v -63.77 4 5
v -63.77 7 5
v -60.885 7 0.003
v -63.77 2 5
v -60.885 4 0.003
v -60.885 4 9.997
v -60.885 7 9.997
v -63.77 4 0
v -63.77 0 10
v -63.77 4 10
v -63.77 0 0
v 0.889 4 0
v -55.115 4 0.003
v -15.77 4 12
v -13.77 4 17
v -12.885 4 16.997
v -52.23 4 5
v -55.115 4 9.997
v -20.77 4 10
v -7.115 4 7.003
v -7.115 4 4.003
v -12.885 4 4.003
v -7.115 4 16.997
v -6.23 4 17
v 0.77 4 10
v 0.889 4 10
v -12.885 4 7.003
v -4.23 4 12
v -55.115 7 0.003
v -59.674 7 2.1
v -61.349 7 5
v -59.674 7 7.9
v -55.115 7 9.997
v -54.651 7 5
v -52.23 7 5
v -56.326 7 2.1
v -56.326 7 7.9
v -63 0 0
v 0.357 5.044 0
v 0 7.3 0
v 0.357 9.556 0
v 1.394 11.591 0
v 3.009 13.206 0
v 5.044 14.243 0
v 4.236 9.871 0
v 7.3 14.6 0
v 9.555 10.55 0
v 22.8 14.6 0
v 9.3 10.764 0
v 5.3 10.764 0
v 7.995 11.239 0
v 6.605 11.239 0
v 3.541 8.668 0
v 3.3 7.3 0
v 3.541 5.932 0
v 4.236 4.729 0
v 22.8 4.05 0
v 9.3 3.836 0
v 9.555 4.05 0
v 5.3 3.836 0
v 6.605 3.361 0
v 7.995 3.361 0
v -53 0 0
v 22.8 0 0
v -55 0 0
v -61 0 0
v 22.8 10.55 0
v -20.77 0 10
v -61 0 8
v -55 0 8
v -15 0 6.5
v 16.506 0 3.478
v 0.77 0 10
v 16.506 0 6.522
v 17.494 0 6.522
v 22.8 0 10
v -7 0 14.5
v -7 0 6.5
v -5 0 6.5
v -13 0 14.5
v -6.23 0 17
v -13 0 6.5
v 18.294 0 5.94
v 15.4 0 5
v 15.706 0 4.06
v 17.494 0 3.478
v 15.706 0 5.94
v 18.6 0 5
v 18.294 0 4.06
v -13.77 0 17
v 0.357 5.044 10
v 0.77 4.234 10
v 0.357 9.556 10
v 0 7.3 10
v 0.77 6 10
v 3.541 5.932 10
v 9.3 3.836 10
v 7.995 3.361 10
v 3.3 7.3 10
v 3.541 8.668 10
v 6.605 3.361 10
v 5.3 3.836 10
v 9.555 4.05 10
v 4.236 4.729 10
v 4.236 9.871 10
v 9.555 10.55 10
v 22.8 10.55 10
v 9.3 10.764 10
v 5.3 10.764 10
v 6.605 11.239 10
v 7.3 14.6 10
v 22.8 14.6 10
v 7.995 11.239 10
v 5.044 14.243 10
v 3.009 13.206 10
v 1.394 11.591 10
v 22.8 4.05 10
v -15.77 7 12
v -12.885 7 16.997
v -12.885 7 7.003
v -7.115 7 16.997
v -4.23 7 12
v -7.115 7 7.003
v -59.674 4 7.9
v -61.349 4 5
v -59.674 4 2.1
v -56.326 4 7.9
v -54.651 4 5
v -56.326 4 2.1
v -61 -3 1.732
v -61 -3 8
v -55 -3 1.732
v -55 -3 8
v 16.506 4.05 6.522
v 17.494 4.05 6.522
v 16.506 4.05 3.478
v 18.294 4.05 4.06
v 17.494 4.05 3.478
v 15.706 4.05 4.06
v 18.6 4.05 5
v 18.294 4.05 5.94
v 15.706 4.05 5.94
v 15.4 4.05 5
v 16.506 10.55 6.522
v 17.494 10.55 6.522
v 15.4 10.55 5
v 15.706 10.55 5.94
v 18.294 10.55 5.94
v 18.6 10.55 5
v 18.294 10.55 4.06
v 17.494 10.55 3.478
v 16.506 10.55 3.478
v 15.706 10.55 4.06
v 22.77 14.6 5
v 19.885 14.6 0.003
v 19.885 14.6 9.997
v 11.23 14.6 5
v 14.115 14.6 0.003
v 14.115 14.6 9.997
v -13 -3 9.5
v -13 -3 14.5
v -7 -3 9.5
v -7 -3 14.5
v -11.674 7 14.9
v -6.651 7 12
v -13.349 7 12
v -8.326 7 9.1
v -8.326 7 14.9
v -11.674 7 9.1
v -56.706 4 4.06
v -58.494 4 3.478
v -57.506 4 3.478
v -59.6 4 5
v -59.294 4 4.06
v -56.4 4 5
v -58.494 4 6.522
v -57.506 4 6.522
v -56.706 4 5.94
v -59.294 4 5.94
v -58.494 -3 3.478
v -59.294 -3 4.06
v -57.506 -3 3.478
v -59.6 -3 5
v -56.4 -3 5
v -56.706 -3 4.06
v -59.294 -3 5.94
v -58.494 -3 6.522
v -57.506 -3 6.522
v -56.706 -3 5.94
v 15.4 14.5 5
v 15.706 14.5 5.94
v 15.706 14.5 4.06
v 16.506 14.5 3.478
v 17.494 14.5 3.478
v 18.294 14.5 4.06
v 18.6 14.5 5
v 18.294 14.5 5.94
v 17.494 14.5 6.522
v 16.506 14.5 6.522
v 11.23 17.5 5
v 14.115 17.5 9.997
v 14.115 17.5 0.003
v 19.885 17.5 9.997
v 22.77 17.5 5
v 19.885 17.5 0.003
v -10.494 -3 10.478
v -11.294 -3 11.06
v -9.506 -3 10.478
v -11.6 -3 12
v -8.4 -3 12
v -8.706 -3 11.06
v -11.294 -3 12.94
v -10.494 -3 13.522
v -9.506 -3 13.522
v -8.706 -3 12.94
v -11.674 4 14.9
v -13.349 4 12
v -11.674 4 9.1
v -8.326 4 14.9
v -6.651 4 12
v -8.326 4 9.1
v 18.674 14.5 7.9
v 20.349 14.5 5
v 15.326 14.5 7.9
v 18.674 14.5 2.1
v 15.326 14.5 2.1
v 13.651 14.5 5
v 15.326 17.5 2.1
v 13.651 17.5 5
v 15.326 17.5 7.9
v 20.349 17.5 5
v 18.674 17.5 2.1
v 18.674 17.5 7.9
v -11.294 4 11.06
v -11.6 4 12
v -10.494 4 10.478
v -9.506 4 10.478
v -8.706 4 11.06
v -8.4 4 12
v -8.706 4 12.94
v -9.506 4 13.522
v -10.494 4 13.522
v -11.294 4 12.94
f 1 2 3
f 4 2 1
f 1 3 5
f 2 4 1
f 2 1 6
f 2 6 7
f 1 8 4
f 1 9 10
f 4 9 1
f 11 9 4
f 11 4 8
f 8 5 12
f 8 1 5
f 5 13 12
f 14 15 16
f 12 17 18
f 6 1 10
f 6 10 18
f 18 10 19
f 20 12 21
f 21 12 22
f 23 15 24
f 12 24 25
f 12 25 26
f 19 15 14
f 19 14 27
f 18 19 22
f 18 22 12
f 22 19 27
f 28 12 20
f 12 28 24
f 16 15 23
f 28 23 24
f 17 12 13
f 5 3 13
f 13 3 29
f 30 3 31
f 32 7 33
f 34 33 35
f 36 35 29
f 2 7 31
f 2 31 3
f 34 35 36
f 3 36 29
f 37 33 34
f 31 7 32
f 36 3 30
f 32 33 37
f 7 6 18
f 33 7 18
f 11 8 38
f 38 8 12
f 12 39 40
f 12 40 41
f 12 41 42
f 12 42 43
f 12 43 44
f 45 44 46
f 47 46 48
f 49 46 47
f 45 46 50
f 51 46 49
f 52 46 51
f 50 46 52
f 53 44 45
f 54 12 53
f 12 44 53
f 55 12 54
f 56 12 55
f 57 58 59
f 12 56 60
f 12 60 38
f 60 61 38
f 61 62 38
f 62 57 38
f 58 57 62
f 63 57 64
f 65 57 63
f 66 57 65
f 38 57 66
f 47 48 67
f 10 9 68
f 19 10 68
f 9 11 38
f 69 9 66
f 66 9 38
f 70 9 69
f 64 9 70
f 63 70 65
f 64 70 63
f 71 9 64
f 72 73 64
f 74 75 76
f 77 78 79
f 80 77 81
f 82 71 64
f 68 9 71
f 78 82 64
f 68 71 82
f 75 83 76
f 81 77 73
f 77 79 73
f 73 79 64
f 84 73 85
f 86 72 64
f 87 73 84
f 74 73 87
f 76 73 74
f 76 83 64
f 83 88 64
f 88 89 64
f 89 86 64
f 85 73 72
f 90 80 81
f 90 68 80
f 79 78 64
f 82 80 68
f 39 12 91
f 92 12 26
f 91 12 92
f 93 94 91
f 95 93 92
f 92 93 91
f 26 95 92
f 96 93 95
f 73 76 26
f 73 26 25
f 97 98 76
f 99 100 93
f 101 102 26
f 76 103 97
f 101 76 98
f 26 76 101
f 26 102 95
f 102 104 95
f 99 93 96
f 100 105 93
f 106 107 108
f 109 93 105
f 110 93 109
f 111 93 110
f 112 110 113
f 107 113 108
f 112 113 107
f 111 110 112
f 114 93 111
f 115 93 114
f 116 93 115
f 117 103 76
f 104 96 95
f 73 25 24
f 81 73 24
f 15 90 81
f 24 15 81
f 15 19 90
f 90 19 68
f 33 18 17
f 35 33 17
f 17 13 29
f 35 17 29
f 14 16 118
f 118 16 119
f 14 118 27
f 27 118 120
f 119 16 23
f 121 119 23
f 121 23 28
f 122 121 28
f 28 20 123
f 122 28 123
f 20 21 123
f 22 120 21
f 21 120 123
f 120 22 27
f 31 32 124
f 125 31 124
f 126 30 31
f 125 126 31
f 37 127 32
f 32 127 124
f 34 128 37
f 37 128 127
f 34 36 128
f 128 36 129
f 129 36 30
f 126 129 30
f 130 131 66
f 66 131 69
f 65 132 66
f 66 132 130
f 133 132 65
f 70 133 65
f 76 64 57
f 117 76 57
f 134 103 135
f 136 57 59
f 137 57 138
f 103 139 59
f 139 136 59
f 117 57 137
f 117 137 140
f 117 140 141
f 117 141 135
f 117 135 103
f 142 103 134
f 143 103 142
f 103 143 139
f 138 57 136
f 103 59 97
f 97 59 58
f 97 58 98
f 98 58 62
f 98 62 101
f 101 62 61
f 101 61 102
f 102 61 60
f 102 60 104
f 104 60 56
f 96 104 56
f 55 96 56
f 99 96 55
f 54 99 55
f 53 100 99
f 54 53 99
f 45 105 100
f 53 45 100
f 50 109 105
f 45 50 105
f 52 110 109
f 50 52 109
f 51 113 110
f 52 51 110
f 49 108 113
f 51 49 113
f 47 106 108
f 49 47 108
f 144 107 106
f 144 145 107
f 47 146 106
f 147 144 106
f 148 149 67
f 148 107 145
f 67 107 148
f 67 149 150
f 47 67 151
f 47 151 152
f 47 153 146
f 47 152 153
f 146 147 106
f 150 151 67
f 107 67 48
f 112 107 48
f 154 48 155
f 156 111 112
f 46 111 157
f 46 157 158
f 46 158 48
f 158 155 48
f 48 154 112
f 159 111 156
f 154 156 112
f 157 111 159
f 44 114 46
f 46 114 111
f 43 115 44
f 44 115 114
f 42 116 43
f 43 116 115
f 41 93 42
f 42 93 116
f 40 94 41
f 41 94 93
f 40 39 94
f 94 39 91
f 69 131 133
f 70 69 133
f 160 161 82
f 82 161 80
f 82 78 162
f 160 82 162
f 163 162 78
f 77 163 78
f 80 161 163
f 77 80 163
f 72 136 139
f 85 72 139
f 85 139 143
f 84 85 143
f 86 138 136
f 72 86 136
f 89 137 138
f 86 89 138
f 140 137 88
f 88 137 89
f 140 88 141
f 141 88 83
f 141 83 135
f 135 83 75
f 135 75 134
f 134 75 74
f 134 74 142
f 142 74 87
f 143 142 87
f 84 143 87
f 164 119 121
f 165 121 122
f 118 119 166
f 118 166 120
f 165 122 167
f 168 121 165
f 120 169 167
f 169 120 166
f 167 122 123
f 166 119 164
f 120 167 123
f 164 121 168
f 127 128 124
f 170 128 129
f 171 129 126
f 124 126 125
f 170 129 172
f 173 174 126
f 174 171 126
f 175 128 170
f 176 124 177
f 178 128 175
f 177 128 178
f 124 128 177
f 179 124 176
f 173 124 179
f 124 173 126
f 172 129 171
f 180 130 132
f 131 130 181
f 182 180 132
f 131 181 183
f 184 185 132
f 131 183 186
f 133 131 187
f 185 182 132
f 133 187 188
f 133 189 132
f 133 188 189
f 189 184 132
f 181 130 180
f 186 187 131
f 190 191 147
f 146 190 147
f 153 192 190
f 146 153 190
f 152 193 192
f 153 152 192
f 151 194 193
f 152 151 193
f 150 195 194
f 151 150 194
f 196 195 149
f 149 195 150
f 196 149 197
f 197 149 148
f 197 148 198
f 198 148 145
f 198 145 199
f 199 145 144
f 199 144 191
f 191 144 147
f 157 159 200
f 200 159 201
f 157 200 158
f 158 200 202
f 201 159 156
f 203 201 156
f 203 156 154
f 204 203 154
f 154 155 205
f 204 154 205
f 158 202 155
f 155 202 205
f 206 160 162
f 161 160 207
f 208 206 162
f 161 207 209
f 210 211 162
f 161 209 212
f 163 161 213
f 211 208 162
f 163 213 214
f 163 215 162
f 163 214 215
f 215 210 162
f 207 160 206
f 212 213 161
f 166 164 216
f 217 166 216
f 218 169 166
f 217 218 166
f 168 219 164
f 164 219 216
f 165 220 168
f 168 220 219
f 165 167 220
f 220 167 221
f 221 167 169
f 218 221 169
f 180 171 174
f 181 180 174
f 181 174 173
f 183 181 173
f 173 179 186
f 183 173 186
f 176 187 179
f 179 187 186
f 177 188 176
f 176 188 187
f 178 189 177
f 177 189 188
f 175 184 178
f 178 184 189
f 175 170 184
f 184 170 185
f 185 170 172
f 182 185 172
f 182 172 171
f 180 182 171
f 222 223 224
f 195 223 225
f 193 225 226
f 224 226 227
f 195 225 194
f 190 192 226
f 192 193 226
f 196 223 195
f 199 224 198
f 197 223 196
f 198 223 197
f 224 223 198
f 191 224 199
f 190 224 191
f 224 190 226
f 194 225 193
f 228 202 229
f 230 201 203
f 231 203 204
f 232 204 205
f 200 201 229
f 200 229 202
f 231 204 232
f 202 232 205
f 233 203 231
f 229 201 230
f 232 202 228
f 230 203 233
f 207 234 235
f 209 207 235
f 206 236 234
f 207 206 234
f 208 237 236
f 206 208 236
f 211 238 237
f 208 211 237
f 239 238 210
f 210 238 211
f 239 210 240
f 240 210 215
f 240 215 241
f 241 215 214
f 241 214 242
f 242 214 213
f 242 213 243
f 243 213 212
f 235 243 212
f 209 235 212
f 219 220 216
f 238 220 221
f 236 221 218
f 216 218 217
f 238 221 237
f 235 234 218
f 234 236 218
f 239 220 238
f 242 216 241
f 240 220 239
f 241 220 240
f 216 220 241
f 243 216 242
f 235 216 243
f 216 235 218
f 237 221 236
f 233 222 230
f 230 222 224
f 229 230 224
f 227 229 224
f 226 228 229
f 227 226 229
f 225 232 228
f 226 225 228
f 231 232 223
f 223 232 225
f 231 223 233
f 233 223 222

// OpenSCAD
module ramps_holder_1(){
m8_diameter = 8;
m3_diameter = 3.2;
m3_nut_diameter = 5.8 / cos(30);
m3_nut_outer_dia = 11.54;
outer_diameter = m8_diameter/2+3.3;
screw_hole_spacing = 48;
screw_vert_spacing = 7;
first_hole_position = 10;
opening_size = m8_diameter-1.5; //openingsize

difference(){
	union(){


		translate([outer_diameter, outer_diameter, 0]) cylinder(h =10, r = outer_diameter, $fn = 20);
		translate([outer_diameter, 0, 0]) cube([15.5,outer_diameter*2,10]);
		
		//standoffs
		translate([-first_hole_position-3, -3, screw_vert_spacing-0.5]) cube([6,5,8]);
		translate([-first_hole_position-3-screw_hole_spacing, -3, 0]) cube([6,5,8]);
		
		translate([-(first_hole_position + screw_hole_spacing + m3_nut_outer_dia/2), 0, 0]) cube([screw_hole_spacing+ m3_nut_outer_dia+15, 4, 10]);
		translate([-(first_hole_position + m3_nut_outer_dia/2+5), 0, 0]) cube([m3_nut_outer_dia+2*5, 4, 17]);
		translate([17, 17.5, 5]) rotate([90, 0, 0]) cylinder(h =5, r = 5.77, $fn = 6);
		
		
		translate([-(first_hole_position+screw_hole_spacing), 0,0]) translate([0, 7, 5]) rotate([90, 0, 0]) #cylinder(h =5, r = m3_nut_outer_dia/2, $fn = 6);
		translate([-first_hole_position, 0,0]) translate([0, 7, 5+screw_vert_spacing]) rotate([90, 0, 0]) #cylinder(h =5, r = m3_nut_outer_dia/2, $fn = 6);
		
		// sražení pod první maticí
		translate([-(first_hole_position +m3_nut_outer_dia/4),7,screw_vert_spacing+5-m3_nut_outer_dia/2*cos(30)]) rotate([135,0,0]) cube([m3_nut_outer_dia/2,5,5]);
	}

	// sražení
	translate([-(first_hole_position - m3_nut_outer_dia/2-5),-1,10]) rotate([0,-45,0]) cube([10,7,15]);
	translate([-(first_hole_position + m3_nut_outer_dia/2+5),-1,10]) rotate([0,-45,0]) cube([15,7,10]);
	translate([-(first_hole_position + 5),0,6.5]) rotate([135,0,0]) cube([10,5,15]);
	translate([-(first_hole_position +screw_hole_spacing + 5),0,0]) rotate([150,0,0]) cube([10,5,15]);

	translate([9, outer_diameter-opening_size/2, -1]) cube([18,opening_size,20]);
	translate([outer_diameter, outer_diameter, -1]) cylinder(h =20, r = m8_diameter/2, $fn = 18);

	//Securing hole
	translate([17, 17, 5]) rotate([90, 0, 0]) cylinder(h =20, r = m3_diameter/2, $fn = 10);
	translate([17, 19.5, 5]) rotate([90, 0, 0]) #cylinder(h =5, r = m3_nut_diameter/2, $fn = 6);

	translate([17, 17, 5]) rotate([90, 0, 0]) #cylinder(h =20, r = m3_diameter/2, $fn = 10);
	translate([-first_hole_position, 16, 5+screw_vert_spacing]) rotate([90, 0, 0]) cylinder(h =20, r = m3_diameter/2, $fn = 10);
	translate([-(first_hole_position+screw_hole_spacing), 16, 5]) rotate([90, 0, 0]) cylinder(h =20, r = m3_diameter/2, $fn = 10);
	
	
	
	translate([-first_hole_position, 9, 5+screw_vert_spacing]) rotate([90, 0, 0]) #cylinder(h =5, r = m3_nut_diameter/2, $fn = 6);
	translate([-(first_hole_position+screw_hole_spacing), 9, 5]) rotate([90, 0, 0]) #cylinder(h =5, r = m3_nut_diameter/2, $fn = 6);
}
}
ramps_holder_1();
